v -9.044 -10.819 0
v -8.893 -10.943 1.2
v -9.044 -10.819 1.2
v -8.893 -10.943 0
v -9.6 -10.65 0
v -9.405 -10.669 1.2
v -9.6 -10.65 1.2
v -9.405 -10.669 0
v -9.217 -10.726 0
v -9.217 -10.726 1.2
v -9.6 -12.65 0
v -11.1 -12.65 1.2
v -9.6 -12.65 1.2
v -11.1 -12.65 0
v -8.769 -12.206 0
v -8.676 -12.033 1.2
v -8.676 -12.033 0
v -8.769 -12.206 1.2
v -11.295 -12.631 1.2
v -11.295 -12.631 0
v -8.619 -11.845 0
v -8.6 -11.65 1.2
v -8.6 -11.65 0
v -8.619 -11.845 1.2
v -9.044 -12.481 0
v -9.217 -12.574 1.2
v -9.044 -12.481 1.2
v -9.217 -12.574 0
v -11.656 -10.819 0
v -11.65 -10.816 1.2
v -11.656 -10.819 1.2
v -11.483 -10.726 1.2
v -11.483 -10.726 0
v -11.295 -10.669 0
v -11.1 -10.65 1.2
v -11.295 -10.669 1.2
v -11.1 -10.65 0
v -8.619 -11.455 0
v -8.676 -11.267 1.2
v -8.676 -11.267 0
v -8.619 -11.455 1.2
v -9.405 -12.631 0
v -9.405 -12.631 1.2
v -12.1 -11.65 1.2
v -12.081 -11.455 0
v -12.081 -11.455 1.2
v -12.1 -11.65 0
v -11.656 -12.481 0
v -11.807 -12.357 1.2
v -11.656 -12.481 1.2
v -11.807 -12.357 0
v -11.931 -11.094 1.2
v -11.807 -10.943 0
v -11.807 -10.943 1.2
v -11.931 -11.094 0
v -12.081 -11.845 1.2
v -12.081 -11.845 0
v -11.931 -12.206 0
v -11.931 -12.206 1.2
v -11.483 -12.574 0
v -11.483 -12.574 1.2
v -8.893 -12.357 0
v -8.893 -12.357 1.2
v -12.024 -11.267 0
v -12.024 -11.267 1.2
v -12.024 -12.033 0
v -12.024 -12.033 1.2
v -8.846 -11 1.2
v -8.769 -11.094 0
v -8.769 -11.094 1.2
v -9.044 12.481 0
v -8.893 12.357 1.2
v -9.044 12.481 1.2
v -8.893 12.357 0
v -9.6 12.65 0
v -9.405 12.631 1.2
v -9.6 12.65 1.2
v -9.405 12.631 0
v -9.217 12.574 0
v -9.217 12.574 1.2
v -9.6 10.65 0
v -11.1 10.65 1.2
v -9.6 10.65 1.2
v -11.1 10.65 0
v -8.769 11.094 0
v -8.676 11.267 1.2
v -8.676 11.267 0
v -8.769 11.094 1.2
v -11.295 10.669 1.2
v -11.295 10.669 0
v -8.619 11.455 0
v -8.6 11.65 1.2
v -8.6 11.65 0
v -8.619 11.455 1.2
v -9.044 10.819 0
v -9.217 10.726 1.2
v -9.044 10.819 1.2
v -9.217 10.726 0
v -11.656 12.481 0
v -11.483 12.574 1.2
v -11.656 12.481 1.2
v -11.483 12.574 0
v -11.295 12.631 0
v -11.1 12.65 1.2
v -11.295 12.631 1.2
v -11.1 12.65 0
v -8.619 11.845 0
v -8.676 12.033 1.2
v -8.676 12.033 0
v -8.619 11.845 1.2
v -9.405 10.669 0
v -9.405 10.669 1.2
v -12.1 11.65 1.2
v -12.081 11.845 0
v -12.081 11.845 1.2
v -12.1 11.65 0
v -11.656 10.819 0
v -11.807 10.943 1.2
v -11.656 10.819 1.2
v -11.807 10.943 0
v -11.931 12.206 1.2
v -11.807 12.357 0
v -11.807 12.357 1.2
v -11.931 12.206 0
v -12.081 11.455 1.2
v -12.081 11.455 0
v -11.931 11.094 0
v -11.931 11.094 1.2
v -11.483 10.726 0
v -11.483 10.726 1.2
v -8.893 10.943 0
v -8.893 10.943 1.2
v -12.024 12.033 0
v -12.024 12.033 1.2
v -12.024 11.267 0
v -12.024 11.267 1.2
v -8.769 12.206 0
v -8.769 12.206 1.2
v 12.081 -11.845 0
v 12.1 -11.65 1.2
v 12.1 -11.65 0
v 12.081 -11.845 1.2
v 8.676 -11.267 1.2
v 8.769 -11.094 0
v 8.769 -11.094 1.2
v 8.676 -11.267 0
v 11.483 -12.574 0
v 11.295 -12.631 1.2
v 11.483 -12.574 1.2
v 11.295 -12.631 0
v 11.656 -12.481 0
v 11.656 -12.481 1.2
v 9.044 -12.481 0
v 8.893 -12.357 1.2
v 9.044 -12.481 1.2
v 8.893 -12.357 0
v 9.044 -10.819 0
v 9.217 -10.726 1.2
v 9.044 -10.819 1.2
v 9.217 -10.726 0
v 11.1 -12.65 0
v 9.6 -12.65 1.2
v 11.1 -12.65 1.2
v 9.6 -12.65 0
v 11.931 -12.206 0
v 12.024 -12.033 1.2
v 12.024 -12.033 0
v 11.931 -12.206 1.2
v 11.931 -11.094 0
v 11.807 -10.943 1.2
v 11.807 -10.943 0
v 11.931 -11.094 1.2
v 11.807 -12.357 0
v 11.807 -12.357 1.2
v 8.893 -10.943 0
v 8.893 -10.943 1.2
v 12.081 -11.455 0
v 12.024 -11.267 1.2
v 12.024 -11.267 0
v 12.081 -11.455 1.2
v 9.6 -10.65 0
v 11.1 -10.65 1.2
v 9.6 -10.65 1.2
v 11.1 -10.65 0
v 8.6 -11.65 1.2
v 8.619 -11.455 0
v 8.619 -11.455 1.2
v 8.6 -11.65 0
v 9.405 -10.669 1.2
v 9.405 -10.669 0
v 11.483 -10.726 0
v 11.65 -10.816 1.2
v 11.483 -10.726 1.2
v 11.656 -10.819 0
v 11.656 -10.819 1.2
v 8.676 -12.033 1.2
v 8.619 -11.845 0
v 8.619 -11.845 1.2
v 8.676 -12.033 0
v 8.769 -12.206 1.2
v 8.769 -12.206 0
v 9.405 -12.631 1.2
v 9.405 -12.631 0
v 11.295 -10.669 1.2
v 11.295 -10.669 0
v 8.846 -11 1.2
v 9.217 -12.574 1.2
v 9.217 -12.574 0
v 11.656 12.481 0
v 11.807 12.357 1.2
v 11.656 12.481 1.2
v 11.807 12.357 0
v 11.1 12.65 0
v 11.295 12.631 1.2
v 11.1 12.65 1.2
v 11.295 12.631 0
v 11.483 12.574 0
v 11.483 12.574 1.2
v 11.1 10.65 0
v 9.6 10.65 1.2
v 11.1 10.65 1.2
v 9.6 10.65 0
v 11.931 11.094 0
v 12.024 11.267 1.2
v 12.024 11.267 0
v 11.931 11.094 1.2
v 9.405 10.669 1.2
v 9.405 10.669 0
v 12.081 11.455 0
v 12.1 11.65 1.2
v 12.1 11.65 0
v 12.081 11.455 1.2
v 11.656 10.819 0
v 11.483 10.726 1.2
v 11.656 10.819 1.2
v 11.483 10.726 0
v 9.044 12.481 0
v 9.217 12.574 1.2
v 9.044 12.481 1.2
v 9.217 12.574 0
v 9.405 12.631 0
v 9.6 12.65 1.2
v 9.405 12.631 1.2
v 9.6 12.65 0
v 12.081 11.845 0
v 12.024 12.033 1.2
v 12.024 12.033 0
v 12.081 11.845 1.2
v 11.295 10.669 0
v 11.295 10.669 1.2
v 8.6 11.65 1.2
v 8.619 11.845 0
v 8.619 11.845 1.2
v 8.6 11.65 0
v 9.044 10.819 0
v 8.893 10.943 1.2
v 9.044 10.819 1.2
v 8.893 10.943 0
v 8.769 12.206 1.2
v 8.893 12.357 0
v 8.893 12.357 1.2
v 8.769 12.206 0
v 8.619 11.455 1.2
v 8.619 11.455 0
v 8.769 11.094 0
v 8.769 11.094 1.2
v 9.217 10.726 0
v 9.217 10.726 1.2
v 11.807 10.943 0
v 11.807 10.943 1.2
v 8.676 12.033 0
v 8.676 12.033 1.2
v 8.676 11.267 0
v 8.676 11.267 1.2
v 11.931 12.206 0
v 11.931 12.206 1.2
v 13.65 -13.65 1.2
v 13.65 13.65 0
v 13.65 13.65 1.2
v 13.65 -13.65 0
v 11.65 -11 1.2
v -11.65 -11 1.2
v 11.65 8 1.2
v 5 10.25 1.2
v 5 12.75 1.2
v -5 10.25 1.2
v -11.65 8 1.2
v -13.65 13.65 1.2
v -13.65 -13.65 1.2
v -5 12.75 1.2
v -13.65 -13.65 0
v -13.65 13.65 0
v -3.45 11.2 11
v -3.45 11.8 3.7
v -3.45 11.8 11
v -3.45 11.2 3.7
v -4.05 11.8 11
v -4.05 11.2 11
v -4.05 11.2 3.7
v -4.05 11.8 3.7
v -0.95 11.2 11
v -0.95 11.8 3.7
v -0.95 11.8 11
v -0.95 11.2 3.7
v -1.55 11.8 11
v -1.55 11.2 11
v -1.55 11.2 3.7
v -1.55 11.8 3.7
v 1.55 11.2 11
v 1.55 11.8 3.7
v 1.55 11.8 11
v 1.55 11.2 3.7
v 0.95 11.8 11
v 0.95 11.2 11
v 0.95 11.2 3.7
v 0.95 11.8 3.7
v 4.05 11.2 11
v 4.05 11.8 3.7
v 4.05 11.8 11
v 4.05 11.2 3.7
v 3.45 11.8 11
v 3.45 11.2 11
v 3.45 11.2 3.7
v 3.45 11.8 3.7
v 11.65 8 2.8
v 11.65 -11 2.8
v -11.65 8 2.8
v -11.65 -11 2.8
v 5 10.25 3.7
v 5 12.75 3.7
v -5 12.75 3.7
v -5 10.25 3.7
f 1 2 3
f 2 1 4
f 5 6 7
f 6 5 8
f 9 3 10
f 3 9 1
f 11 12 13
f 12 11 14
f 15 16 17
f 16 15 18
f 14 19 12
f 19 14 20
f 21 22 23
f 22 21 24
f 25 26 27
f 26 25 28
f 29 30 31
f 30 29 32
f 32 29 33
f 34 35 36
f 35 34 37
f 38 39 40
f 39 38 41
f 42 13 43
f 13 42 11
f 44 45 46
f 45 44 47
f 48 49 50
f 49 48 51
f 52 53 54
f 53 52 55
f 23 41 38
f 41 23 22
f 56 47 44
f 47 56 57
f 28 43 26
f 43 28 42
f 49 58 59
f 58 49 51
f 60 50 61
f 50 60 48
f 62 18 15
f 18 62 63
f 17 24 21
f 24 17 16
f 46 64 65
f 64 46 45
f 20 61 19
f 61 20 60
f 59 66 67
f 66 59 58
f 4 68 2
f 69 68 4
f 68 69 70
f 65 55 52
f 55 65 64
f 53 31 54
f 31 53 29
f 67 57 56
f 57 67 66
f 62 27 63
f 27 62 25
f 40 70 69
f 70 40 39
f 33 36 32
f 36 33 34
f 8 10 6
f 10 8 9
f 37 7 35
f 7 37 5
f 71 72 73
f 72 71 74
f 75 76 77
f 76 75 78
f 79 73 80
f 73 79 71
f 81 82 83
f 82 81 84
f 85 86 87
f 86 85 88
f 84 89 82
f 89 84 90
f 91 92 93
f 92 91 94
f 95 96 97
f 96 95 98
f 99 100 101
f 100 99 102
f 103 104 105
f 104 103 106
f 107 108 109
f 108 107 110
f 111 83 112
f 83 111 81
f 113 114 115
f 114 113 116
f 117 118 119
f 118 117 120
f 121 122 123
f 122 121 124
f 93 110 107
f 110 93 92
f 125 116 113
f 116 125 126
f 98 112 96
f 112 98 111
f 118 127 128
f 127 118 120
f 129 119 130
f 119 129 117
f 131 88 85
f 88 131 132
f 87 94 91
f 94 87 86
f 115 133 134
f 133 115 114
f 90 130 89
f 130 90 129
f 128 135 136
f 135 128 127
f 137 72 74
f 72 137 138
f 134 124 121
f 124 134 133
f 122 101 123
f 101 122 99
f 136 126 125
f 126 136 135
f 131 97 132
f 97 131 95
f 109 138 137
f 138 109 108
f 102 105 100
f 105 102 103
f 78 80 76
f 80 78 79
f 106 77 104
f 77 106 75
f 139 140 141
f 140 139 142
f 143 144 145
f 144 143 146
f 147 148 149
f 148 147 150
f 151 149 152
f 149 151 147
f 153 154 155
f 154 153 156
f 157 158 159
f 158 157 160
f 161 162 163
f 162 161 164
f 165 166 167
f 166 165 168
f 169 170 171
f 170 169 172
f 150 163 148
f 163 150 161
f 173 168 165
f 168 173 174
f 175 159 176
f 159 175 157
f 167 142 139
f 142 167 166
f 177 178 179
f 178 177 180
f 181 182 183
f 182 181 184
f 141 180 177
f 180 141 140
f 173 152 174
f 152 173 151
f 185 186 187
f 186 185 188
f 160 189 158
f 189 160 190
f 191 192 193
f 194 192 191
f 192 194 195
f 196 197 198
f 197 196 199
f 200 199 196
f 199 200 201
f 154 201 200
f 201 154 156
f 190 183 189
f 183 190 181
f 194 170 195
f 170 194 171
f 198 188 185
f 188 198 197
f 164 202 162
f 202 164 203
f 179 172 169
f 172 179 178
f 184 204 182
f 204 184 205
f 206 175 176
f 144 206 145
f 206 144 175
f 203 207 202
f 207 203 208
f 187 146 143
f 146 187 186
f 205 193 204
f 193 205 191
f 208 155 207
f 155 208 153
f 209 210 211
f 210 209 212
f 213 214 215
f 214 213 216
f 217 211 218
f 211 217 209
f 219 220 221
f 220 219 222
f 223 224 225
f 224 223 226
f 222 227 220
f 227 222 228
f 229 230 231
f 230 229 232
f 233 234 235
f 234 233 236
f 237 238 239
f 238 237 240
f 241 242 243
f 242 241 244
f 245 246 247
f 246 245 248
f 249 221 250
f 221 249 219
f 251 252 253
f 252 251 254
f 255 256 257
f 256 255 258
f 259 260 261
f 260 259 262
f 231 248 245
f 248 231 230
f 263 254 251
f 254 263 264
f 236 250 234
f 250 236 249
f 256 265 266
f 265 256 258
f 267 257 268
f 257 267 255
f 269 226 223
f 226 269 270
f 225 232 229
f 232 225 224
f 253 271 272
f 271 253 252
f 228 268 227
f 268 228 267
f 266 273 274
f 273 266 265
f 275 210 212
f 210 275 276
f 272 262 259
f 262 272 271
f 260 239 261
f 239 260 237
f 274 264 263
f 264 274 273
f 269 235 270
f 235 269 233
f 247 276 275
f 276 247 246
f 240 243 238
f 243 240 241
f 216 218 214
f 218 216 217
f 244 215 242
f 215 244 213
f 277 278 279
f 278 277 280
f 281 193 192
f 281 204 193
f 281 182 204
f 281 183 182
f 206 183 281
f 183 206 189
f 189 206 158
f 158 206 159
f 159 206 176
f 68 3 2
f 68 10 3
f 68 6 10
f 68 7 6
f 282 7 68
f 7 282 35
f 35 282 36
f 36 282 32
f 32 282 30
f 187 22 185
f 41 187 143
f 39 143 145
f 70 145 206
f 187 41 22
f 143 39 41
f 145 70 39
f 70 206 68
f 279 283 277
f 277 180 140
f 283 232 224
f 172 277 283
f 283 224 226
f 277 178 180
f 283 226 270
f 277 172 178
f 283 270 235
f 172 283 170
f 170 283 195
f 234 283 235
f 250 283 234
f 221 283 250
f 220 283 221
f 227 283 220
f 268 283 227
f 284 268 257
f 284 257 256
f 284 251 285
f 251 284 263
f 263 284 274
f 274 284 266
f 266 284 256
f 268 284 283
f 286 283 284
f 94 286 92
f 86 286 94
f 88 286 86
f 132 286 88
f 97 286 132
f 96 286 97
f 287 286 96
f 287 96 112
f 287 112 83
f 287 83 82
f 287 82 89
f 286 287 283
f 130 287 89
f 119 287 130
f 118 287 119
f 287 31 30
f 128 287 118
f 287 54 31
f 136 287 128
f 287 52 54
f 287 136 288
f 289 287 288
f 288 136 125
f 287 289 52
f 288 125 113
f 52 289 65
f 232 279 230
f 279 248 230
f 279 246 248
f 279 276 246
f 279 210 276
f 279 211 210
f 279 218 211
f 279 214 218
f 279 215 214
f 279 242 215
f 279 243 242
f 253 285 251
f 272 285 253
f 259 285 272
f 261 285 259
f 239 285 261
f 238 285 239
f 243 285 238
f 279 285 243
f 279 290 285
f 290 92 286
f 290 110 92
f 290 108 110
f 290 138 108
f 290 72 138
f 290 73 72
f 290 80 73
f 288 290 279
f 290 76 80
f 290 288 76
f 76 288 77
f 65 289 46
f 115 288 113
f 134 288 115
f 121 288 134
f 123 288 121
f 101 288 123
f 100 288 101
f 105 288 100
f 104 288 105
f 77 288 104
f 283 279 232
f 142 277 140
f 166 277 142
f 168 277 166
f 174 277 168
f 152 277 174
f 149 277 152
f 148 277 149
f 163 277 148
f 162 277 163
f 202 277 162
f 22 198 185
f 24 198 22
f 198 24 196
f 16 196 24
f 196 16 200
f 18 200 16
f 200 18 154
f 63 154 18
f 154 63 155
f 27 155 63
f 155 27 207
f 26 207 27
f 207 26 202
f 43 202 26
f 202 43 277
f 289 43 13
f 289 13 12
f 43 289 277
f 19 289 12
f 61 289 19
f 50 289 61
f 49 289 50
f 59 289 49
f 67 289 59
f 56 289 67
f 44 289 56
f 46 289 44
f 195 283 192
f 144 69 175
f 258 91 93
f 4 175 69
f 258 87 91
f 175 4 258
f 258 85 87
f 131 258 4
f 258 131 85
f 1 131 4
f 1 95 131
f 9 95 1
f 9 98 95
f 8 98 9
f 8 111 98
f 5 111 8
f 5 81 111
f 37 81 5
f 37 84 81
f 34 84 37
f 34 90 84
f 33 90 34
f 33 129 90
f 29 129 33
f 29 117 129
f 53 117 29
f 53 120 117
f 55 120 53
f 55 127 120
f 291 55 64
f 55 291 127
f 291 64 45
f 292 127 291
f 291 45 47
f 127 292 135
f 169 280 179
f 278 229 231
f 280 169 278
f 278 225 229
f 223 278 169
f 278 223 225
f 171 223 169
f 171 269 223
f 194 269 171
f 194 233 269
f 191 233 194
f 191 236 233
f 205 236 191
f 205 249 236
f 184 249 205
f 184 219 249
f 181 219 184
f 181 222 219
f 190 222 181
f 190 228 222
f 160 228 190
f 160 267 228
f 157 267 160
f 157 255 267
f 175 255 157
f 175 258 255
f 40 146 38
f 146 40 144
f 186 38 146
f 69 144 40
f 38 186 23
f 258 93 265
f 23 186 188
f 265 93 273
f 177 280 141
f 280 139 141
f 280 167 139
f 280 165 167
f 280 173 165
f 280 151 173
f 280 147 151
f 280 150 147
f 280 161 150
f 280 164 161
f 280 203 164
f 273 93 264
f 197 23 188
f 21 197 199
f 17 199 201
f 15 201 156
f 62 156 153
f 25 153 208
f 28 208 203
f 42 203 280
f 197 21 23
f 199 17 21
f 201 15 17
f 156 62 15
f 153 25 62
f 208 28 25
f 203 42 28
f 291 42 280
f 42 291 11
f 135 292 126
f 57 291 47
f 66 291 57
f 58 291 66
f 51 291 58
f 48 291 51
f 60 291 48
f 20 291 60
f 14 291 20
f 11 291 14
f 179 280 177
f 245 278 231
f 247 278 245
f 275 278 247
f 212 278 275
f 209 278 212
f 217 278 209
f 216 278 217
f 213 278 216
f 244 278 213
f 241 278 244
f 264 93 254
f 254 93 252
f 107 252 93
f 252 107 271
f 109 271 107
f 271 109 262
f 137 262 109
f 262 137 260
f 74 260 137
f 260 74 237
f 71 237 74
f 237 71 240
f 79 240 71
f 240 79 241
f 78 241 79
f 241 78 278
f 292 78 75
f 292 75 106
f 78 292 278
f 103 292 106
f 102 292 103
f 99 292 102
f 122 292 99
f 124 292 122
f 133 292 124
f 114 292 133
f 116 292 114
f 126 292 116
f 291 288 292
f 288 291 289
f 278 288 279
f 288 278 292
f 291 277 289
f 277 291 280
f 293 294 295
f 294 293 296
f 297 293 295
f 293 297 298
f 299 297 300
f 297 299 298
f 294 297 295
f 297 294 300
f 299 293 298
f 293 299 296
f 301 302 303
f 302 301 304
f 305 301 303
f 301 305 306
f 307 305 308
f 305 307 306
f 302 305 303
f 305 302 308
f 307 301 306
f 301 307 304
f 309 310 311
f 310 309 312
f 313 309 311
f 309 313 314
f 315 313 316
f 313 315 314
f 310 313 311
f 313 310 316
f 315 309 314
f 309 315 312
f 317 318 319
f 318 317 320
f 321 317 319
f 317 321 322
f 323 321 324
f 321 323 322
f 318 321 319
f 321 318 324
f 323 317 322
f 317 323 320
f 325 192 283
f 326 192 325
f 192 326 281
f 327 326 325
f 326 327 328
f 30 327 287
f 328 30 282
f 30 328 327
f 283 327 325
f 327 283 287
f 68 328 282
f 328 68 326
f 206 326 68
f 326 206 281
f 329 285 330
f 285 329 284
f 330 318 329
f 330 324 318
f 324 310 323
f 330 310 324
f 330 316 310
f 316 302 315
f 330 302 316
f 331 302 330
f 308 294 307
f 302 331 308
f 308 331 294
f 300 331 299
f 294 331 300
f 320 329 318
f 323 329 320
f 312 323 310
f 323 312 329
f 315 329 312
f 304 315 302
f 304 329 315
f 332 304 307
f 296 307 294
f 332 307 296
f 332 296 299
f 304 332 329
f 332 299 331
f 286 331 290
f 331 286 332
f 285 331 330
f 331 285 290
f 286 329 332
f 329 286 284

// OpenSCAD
$fn = 32;

pcb = [27.3, 27.3, 1.2];
holes = [
  [-10.35, -11.65], [-10.35, 11.65],
  [10.35, -11.65], [10.35, 11.65]
];

module slot(length, diameter, height) {
  hull()
    for (x = [-length / 2 + diameter / 2, length / 2 - diameter / 2])
      translate([x, 0, 0]) cylinder(d = diameter, h = height, $fn = 32);
}

module board() {
  difference() {
    translate([-pcb[0] / 2, -pcb[1] / 2, 0]) cube(pcb);
    for (hole = holes)
      translate([hole[0], hole[1], -0.1]) slot(3.5, 2, pcb[2] + 0.2);
  }
}

color("#2e7d5b") board();
color("#181818") translate([0, -1.5, pcb[2] + 0.8]) cube([23.3, 19, 1.6], center = true);
color("#181818") translate([0, 11.5, pcb[2] + 1.25]) cube([10, 2.5, 2.5], center = true);
for (x = [-3.75, -1.25, 1.25, 3.75])
  color("#d6a53a") translate([x, 11.5, pcb[2] + 4.9]) cube([0.6, 0.6, 9.8], center = true);
